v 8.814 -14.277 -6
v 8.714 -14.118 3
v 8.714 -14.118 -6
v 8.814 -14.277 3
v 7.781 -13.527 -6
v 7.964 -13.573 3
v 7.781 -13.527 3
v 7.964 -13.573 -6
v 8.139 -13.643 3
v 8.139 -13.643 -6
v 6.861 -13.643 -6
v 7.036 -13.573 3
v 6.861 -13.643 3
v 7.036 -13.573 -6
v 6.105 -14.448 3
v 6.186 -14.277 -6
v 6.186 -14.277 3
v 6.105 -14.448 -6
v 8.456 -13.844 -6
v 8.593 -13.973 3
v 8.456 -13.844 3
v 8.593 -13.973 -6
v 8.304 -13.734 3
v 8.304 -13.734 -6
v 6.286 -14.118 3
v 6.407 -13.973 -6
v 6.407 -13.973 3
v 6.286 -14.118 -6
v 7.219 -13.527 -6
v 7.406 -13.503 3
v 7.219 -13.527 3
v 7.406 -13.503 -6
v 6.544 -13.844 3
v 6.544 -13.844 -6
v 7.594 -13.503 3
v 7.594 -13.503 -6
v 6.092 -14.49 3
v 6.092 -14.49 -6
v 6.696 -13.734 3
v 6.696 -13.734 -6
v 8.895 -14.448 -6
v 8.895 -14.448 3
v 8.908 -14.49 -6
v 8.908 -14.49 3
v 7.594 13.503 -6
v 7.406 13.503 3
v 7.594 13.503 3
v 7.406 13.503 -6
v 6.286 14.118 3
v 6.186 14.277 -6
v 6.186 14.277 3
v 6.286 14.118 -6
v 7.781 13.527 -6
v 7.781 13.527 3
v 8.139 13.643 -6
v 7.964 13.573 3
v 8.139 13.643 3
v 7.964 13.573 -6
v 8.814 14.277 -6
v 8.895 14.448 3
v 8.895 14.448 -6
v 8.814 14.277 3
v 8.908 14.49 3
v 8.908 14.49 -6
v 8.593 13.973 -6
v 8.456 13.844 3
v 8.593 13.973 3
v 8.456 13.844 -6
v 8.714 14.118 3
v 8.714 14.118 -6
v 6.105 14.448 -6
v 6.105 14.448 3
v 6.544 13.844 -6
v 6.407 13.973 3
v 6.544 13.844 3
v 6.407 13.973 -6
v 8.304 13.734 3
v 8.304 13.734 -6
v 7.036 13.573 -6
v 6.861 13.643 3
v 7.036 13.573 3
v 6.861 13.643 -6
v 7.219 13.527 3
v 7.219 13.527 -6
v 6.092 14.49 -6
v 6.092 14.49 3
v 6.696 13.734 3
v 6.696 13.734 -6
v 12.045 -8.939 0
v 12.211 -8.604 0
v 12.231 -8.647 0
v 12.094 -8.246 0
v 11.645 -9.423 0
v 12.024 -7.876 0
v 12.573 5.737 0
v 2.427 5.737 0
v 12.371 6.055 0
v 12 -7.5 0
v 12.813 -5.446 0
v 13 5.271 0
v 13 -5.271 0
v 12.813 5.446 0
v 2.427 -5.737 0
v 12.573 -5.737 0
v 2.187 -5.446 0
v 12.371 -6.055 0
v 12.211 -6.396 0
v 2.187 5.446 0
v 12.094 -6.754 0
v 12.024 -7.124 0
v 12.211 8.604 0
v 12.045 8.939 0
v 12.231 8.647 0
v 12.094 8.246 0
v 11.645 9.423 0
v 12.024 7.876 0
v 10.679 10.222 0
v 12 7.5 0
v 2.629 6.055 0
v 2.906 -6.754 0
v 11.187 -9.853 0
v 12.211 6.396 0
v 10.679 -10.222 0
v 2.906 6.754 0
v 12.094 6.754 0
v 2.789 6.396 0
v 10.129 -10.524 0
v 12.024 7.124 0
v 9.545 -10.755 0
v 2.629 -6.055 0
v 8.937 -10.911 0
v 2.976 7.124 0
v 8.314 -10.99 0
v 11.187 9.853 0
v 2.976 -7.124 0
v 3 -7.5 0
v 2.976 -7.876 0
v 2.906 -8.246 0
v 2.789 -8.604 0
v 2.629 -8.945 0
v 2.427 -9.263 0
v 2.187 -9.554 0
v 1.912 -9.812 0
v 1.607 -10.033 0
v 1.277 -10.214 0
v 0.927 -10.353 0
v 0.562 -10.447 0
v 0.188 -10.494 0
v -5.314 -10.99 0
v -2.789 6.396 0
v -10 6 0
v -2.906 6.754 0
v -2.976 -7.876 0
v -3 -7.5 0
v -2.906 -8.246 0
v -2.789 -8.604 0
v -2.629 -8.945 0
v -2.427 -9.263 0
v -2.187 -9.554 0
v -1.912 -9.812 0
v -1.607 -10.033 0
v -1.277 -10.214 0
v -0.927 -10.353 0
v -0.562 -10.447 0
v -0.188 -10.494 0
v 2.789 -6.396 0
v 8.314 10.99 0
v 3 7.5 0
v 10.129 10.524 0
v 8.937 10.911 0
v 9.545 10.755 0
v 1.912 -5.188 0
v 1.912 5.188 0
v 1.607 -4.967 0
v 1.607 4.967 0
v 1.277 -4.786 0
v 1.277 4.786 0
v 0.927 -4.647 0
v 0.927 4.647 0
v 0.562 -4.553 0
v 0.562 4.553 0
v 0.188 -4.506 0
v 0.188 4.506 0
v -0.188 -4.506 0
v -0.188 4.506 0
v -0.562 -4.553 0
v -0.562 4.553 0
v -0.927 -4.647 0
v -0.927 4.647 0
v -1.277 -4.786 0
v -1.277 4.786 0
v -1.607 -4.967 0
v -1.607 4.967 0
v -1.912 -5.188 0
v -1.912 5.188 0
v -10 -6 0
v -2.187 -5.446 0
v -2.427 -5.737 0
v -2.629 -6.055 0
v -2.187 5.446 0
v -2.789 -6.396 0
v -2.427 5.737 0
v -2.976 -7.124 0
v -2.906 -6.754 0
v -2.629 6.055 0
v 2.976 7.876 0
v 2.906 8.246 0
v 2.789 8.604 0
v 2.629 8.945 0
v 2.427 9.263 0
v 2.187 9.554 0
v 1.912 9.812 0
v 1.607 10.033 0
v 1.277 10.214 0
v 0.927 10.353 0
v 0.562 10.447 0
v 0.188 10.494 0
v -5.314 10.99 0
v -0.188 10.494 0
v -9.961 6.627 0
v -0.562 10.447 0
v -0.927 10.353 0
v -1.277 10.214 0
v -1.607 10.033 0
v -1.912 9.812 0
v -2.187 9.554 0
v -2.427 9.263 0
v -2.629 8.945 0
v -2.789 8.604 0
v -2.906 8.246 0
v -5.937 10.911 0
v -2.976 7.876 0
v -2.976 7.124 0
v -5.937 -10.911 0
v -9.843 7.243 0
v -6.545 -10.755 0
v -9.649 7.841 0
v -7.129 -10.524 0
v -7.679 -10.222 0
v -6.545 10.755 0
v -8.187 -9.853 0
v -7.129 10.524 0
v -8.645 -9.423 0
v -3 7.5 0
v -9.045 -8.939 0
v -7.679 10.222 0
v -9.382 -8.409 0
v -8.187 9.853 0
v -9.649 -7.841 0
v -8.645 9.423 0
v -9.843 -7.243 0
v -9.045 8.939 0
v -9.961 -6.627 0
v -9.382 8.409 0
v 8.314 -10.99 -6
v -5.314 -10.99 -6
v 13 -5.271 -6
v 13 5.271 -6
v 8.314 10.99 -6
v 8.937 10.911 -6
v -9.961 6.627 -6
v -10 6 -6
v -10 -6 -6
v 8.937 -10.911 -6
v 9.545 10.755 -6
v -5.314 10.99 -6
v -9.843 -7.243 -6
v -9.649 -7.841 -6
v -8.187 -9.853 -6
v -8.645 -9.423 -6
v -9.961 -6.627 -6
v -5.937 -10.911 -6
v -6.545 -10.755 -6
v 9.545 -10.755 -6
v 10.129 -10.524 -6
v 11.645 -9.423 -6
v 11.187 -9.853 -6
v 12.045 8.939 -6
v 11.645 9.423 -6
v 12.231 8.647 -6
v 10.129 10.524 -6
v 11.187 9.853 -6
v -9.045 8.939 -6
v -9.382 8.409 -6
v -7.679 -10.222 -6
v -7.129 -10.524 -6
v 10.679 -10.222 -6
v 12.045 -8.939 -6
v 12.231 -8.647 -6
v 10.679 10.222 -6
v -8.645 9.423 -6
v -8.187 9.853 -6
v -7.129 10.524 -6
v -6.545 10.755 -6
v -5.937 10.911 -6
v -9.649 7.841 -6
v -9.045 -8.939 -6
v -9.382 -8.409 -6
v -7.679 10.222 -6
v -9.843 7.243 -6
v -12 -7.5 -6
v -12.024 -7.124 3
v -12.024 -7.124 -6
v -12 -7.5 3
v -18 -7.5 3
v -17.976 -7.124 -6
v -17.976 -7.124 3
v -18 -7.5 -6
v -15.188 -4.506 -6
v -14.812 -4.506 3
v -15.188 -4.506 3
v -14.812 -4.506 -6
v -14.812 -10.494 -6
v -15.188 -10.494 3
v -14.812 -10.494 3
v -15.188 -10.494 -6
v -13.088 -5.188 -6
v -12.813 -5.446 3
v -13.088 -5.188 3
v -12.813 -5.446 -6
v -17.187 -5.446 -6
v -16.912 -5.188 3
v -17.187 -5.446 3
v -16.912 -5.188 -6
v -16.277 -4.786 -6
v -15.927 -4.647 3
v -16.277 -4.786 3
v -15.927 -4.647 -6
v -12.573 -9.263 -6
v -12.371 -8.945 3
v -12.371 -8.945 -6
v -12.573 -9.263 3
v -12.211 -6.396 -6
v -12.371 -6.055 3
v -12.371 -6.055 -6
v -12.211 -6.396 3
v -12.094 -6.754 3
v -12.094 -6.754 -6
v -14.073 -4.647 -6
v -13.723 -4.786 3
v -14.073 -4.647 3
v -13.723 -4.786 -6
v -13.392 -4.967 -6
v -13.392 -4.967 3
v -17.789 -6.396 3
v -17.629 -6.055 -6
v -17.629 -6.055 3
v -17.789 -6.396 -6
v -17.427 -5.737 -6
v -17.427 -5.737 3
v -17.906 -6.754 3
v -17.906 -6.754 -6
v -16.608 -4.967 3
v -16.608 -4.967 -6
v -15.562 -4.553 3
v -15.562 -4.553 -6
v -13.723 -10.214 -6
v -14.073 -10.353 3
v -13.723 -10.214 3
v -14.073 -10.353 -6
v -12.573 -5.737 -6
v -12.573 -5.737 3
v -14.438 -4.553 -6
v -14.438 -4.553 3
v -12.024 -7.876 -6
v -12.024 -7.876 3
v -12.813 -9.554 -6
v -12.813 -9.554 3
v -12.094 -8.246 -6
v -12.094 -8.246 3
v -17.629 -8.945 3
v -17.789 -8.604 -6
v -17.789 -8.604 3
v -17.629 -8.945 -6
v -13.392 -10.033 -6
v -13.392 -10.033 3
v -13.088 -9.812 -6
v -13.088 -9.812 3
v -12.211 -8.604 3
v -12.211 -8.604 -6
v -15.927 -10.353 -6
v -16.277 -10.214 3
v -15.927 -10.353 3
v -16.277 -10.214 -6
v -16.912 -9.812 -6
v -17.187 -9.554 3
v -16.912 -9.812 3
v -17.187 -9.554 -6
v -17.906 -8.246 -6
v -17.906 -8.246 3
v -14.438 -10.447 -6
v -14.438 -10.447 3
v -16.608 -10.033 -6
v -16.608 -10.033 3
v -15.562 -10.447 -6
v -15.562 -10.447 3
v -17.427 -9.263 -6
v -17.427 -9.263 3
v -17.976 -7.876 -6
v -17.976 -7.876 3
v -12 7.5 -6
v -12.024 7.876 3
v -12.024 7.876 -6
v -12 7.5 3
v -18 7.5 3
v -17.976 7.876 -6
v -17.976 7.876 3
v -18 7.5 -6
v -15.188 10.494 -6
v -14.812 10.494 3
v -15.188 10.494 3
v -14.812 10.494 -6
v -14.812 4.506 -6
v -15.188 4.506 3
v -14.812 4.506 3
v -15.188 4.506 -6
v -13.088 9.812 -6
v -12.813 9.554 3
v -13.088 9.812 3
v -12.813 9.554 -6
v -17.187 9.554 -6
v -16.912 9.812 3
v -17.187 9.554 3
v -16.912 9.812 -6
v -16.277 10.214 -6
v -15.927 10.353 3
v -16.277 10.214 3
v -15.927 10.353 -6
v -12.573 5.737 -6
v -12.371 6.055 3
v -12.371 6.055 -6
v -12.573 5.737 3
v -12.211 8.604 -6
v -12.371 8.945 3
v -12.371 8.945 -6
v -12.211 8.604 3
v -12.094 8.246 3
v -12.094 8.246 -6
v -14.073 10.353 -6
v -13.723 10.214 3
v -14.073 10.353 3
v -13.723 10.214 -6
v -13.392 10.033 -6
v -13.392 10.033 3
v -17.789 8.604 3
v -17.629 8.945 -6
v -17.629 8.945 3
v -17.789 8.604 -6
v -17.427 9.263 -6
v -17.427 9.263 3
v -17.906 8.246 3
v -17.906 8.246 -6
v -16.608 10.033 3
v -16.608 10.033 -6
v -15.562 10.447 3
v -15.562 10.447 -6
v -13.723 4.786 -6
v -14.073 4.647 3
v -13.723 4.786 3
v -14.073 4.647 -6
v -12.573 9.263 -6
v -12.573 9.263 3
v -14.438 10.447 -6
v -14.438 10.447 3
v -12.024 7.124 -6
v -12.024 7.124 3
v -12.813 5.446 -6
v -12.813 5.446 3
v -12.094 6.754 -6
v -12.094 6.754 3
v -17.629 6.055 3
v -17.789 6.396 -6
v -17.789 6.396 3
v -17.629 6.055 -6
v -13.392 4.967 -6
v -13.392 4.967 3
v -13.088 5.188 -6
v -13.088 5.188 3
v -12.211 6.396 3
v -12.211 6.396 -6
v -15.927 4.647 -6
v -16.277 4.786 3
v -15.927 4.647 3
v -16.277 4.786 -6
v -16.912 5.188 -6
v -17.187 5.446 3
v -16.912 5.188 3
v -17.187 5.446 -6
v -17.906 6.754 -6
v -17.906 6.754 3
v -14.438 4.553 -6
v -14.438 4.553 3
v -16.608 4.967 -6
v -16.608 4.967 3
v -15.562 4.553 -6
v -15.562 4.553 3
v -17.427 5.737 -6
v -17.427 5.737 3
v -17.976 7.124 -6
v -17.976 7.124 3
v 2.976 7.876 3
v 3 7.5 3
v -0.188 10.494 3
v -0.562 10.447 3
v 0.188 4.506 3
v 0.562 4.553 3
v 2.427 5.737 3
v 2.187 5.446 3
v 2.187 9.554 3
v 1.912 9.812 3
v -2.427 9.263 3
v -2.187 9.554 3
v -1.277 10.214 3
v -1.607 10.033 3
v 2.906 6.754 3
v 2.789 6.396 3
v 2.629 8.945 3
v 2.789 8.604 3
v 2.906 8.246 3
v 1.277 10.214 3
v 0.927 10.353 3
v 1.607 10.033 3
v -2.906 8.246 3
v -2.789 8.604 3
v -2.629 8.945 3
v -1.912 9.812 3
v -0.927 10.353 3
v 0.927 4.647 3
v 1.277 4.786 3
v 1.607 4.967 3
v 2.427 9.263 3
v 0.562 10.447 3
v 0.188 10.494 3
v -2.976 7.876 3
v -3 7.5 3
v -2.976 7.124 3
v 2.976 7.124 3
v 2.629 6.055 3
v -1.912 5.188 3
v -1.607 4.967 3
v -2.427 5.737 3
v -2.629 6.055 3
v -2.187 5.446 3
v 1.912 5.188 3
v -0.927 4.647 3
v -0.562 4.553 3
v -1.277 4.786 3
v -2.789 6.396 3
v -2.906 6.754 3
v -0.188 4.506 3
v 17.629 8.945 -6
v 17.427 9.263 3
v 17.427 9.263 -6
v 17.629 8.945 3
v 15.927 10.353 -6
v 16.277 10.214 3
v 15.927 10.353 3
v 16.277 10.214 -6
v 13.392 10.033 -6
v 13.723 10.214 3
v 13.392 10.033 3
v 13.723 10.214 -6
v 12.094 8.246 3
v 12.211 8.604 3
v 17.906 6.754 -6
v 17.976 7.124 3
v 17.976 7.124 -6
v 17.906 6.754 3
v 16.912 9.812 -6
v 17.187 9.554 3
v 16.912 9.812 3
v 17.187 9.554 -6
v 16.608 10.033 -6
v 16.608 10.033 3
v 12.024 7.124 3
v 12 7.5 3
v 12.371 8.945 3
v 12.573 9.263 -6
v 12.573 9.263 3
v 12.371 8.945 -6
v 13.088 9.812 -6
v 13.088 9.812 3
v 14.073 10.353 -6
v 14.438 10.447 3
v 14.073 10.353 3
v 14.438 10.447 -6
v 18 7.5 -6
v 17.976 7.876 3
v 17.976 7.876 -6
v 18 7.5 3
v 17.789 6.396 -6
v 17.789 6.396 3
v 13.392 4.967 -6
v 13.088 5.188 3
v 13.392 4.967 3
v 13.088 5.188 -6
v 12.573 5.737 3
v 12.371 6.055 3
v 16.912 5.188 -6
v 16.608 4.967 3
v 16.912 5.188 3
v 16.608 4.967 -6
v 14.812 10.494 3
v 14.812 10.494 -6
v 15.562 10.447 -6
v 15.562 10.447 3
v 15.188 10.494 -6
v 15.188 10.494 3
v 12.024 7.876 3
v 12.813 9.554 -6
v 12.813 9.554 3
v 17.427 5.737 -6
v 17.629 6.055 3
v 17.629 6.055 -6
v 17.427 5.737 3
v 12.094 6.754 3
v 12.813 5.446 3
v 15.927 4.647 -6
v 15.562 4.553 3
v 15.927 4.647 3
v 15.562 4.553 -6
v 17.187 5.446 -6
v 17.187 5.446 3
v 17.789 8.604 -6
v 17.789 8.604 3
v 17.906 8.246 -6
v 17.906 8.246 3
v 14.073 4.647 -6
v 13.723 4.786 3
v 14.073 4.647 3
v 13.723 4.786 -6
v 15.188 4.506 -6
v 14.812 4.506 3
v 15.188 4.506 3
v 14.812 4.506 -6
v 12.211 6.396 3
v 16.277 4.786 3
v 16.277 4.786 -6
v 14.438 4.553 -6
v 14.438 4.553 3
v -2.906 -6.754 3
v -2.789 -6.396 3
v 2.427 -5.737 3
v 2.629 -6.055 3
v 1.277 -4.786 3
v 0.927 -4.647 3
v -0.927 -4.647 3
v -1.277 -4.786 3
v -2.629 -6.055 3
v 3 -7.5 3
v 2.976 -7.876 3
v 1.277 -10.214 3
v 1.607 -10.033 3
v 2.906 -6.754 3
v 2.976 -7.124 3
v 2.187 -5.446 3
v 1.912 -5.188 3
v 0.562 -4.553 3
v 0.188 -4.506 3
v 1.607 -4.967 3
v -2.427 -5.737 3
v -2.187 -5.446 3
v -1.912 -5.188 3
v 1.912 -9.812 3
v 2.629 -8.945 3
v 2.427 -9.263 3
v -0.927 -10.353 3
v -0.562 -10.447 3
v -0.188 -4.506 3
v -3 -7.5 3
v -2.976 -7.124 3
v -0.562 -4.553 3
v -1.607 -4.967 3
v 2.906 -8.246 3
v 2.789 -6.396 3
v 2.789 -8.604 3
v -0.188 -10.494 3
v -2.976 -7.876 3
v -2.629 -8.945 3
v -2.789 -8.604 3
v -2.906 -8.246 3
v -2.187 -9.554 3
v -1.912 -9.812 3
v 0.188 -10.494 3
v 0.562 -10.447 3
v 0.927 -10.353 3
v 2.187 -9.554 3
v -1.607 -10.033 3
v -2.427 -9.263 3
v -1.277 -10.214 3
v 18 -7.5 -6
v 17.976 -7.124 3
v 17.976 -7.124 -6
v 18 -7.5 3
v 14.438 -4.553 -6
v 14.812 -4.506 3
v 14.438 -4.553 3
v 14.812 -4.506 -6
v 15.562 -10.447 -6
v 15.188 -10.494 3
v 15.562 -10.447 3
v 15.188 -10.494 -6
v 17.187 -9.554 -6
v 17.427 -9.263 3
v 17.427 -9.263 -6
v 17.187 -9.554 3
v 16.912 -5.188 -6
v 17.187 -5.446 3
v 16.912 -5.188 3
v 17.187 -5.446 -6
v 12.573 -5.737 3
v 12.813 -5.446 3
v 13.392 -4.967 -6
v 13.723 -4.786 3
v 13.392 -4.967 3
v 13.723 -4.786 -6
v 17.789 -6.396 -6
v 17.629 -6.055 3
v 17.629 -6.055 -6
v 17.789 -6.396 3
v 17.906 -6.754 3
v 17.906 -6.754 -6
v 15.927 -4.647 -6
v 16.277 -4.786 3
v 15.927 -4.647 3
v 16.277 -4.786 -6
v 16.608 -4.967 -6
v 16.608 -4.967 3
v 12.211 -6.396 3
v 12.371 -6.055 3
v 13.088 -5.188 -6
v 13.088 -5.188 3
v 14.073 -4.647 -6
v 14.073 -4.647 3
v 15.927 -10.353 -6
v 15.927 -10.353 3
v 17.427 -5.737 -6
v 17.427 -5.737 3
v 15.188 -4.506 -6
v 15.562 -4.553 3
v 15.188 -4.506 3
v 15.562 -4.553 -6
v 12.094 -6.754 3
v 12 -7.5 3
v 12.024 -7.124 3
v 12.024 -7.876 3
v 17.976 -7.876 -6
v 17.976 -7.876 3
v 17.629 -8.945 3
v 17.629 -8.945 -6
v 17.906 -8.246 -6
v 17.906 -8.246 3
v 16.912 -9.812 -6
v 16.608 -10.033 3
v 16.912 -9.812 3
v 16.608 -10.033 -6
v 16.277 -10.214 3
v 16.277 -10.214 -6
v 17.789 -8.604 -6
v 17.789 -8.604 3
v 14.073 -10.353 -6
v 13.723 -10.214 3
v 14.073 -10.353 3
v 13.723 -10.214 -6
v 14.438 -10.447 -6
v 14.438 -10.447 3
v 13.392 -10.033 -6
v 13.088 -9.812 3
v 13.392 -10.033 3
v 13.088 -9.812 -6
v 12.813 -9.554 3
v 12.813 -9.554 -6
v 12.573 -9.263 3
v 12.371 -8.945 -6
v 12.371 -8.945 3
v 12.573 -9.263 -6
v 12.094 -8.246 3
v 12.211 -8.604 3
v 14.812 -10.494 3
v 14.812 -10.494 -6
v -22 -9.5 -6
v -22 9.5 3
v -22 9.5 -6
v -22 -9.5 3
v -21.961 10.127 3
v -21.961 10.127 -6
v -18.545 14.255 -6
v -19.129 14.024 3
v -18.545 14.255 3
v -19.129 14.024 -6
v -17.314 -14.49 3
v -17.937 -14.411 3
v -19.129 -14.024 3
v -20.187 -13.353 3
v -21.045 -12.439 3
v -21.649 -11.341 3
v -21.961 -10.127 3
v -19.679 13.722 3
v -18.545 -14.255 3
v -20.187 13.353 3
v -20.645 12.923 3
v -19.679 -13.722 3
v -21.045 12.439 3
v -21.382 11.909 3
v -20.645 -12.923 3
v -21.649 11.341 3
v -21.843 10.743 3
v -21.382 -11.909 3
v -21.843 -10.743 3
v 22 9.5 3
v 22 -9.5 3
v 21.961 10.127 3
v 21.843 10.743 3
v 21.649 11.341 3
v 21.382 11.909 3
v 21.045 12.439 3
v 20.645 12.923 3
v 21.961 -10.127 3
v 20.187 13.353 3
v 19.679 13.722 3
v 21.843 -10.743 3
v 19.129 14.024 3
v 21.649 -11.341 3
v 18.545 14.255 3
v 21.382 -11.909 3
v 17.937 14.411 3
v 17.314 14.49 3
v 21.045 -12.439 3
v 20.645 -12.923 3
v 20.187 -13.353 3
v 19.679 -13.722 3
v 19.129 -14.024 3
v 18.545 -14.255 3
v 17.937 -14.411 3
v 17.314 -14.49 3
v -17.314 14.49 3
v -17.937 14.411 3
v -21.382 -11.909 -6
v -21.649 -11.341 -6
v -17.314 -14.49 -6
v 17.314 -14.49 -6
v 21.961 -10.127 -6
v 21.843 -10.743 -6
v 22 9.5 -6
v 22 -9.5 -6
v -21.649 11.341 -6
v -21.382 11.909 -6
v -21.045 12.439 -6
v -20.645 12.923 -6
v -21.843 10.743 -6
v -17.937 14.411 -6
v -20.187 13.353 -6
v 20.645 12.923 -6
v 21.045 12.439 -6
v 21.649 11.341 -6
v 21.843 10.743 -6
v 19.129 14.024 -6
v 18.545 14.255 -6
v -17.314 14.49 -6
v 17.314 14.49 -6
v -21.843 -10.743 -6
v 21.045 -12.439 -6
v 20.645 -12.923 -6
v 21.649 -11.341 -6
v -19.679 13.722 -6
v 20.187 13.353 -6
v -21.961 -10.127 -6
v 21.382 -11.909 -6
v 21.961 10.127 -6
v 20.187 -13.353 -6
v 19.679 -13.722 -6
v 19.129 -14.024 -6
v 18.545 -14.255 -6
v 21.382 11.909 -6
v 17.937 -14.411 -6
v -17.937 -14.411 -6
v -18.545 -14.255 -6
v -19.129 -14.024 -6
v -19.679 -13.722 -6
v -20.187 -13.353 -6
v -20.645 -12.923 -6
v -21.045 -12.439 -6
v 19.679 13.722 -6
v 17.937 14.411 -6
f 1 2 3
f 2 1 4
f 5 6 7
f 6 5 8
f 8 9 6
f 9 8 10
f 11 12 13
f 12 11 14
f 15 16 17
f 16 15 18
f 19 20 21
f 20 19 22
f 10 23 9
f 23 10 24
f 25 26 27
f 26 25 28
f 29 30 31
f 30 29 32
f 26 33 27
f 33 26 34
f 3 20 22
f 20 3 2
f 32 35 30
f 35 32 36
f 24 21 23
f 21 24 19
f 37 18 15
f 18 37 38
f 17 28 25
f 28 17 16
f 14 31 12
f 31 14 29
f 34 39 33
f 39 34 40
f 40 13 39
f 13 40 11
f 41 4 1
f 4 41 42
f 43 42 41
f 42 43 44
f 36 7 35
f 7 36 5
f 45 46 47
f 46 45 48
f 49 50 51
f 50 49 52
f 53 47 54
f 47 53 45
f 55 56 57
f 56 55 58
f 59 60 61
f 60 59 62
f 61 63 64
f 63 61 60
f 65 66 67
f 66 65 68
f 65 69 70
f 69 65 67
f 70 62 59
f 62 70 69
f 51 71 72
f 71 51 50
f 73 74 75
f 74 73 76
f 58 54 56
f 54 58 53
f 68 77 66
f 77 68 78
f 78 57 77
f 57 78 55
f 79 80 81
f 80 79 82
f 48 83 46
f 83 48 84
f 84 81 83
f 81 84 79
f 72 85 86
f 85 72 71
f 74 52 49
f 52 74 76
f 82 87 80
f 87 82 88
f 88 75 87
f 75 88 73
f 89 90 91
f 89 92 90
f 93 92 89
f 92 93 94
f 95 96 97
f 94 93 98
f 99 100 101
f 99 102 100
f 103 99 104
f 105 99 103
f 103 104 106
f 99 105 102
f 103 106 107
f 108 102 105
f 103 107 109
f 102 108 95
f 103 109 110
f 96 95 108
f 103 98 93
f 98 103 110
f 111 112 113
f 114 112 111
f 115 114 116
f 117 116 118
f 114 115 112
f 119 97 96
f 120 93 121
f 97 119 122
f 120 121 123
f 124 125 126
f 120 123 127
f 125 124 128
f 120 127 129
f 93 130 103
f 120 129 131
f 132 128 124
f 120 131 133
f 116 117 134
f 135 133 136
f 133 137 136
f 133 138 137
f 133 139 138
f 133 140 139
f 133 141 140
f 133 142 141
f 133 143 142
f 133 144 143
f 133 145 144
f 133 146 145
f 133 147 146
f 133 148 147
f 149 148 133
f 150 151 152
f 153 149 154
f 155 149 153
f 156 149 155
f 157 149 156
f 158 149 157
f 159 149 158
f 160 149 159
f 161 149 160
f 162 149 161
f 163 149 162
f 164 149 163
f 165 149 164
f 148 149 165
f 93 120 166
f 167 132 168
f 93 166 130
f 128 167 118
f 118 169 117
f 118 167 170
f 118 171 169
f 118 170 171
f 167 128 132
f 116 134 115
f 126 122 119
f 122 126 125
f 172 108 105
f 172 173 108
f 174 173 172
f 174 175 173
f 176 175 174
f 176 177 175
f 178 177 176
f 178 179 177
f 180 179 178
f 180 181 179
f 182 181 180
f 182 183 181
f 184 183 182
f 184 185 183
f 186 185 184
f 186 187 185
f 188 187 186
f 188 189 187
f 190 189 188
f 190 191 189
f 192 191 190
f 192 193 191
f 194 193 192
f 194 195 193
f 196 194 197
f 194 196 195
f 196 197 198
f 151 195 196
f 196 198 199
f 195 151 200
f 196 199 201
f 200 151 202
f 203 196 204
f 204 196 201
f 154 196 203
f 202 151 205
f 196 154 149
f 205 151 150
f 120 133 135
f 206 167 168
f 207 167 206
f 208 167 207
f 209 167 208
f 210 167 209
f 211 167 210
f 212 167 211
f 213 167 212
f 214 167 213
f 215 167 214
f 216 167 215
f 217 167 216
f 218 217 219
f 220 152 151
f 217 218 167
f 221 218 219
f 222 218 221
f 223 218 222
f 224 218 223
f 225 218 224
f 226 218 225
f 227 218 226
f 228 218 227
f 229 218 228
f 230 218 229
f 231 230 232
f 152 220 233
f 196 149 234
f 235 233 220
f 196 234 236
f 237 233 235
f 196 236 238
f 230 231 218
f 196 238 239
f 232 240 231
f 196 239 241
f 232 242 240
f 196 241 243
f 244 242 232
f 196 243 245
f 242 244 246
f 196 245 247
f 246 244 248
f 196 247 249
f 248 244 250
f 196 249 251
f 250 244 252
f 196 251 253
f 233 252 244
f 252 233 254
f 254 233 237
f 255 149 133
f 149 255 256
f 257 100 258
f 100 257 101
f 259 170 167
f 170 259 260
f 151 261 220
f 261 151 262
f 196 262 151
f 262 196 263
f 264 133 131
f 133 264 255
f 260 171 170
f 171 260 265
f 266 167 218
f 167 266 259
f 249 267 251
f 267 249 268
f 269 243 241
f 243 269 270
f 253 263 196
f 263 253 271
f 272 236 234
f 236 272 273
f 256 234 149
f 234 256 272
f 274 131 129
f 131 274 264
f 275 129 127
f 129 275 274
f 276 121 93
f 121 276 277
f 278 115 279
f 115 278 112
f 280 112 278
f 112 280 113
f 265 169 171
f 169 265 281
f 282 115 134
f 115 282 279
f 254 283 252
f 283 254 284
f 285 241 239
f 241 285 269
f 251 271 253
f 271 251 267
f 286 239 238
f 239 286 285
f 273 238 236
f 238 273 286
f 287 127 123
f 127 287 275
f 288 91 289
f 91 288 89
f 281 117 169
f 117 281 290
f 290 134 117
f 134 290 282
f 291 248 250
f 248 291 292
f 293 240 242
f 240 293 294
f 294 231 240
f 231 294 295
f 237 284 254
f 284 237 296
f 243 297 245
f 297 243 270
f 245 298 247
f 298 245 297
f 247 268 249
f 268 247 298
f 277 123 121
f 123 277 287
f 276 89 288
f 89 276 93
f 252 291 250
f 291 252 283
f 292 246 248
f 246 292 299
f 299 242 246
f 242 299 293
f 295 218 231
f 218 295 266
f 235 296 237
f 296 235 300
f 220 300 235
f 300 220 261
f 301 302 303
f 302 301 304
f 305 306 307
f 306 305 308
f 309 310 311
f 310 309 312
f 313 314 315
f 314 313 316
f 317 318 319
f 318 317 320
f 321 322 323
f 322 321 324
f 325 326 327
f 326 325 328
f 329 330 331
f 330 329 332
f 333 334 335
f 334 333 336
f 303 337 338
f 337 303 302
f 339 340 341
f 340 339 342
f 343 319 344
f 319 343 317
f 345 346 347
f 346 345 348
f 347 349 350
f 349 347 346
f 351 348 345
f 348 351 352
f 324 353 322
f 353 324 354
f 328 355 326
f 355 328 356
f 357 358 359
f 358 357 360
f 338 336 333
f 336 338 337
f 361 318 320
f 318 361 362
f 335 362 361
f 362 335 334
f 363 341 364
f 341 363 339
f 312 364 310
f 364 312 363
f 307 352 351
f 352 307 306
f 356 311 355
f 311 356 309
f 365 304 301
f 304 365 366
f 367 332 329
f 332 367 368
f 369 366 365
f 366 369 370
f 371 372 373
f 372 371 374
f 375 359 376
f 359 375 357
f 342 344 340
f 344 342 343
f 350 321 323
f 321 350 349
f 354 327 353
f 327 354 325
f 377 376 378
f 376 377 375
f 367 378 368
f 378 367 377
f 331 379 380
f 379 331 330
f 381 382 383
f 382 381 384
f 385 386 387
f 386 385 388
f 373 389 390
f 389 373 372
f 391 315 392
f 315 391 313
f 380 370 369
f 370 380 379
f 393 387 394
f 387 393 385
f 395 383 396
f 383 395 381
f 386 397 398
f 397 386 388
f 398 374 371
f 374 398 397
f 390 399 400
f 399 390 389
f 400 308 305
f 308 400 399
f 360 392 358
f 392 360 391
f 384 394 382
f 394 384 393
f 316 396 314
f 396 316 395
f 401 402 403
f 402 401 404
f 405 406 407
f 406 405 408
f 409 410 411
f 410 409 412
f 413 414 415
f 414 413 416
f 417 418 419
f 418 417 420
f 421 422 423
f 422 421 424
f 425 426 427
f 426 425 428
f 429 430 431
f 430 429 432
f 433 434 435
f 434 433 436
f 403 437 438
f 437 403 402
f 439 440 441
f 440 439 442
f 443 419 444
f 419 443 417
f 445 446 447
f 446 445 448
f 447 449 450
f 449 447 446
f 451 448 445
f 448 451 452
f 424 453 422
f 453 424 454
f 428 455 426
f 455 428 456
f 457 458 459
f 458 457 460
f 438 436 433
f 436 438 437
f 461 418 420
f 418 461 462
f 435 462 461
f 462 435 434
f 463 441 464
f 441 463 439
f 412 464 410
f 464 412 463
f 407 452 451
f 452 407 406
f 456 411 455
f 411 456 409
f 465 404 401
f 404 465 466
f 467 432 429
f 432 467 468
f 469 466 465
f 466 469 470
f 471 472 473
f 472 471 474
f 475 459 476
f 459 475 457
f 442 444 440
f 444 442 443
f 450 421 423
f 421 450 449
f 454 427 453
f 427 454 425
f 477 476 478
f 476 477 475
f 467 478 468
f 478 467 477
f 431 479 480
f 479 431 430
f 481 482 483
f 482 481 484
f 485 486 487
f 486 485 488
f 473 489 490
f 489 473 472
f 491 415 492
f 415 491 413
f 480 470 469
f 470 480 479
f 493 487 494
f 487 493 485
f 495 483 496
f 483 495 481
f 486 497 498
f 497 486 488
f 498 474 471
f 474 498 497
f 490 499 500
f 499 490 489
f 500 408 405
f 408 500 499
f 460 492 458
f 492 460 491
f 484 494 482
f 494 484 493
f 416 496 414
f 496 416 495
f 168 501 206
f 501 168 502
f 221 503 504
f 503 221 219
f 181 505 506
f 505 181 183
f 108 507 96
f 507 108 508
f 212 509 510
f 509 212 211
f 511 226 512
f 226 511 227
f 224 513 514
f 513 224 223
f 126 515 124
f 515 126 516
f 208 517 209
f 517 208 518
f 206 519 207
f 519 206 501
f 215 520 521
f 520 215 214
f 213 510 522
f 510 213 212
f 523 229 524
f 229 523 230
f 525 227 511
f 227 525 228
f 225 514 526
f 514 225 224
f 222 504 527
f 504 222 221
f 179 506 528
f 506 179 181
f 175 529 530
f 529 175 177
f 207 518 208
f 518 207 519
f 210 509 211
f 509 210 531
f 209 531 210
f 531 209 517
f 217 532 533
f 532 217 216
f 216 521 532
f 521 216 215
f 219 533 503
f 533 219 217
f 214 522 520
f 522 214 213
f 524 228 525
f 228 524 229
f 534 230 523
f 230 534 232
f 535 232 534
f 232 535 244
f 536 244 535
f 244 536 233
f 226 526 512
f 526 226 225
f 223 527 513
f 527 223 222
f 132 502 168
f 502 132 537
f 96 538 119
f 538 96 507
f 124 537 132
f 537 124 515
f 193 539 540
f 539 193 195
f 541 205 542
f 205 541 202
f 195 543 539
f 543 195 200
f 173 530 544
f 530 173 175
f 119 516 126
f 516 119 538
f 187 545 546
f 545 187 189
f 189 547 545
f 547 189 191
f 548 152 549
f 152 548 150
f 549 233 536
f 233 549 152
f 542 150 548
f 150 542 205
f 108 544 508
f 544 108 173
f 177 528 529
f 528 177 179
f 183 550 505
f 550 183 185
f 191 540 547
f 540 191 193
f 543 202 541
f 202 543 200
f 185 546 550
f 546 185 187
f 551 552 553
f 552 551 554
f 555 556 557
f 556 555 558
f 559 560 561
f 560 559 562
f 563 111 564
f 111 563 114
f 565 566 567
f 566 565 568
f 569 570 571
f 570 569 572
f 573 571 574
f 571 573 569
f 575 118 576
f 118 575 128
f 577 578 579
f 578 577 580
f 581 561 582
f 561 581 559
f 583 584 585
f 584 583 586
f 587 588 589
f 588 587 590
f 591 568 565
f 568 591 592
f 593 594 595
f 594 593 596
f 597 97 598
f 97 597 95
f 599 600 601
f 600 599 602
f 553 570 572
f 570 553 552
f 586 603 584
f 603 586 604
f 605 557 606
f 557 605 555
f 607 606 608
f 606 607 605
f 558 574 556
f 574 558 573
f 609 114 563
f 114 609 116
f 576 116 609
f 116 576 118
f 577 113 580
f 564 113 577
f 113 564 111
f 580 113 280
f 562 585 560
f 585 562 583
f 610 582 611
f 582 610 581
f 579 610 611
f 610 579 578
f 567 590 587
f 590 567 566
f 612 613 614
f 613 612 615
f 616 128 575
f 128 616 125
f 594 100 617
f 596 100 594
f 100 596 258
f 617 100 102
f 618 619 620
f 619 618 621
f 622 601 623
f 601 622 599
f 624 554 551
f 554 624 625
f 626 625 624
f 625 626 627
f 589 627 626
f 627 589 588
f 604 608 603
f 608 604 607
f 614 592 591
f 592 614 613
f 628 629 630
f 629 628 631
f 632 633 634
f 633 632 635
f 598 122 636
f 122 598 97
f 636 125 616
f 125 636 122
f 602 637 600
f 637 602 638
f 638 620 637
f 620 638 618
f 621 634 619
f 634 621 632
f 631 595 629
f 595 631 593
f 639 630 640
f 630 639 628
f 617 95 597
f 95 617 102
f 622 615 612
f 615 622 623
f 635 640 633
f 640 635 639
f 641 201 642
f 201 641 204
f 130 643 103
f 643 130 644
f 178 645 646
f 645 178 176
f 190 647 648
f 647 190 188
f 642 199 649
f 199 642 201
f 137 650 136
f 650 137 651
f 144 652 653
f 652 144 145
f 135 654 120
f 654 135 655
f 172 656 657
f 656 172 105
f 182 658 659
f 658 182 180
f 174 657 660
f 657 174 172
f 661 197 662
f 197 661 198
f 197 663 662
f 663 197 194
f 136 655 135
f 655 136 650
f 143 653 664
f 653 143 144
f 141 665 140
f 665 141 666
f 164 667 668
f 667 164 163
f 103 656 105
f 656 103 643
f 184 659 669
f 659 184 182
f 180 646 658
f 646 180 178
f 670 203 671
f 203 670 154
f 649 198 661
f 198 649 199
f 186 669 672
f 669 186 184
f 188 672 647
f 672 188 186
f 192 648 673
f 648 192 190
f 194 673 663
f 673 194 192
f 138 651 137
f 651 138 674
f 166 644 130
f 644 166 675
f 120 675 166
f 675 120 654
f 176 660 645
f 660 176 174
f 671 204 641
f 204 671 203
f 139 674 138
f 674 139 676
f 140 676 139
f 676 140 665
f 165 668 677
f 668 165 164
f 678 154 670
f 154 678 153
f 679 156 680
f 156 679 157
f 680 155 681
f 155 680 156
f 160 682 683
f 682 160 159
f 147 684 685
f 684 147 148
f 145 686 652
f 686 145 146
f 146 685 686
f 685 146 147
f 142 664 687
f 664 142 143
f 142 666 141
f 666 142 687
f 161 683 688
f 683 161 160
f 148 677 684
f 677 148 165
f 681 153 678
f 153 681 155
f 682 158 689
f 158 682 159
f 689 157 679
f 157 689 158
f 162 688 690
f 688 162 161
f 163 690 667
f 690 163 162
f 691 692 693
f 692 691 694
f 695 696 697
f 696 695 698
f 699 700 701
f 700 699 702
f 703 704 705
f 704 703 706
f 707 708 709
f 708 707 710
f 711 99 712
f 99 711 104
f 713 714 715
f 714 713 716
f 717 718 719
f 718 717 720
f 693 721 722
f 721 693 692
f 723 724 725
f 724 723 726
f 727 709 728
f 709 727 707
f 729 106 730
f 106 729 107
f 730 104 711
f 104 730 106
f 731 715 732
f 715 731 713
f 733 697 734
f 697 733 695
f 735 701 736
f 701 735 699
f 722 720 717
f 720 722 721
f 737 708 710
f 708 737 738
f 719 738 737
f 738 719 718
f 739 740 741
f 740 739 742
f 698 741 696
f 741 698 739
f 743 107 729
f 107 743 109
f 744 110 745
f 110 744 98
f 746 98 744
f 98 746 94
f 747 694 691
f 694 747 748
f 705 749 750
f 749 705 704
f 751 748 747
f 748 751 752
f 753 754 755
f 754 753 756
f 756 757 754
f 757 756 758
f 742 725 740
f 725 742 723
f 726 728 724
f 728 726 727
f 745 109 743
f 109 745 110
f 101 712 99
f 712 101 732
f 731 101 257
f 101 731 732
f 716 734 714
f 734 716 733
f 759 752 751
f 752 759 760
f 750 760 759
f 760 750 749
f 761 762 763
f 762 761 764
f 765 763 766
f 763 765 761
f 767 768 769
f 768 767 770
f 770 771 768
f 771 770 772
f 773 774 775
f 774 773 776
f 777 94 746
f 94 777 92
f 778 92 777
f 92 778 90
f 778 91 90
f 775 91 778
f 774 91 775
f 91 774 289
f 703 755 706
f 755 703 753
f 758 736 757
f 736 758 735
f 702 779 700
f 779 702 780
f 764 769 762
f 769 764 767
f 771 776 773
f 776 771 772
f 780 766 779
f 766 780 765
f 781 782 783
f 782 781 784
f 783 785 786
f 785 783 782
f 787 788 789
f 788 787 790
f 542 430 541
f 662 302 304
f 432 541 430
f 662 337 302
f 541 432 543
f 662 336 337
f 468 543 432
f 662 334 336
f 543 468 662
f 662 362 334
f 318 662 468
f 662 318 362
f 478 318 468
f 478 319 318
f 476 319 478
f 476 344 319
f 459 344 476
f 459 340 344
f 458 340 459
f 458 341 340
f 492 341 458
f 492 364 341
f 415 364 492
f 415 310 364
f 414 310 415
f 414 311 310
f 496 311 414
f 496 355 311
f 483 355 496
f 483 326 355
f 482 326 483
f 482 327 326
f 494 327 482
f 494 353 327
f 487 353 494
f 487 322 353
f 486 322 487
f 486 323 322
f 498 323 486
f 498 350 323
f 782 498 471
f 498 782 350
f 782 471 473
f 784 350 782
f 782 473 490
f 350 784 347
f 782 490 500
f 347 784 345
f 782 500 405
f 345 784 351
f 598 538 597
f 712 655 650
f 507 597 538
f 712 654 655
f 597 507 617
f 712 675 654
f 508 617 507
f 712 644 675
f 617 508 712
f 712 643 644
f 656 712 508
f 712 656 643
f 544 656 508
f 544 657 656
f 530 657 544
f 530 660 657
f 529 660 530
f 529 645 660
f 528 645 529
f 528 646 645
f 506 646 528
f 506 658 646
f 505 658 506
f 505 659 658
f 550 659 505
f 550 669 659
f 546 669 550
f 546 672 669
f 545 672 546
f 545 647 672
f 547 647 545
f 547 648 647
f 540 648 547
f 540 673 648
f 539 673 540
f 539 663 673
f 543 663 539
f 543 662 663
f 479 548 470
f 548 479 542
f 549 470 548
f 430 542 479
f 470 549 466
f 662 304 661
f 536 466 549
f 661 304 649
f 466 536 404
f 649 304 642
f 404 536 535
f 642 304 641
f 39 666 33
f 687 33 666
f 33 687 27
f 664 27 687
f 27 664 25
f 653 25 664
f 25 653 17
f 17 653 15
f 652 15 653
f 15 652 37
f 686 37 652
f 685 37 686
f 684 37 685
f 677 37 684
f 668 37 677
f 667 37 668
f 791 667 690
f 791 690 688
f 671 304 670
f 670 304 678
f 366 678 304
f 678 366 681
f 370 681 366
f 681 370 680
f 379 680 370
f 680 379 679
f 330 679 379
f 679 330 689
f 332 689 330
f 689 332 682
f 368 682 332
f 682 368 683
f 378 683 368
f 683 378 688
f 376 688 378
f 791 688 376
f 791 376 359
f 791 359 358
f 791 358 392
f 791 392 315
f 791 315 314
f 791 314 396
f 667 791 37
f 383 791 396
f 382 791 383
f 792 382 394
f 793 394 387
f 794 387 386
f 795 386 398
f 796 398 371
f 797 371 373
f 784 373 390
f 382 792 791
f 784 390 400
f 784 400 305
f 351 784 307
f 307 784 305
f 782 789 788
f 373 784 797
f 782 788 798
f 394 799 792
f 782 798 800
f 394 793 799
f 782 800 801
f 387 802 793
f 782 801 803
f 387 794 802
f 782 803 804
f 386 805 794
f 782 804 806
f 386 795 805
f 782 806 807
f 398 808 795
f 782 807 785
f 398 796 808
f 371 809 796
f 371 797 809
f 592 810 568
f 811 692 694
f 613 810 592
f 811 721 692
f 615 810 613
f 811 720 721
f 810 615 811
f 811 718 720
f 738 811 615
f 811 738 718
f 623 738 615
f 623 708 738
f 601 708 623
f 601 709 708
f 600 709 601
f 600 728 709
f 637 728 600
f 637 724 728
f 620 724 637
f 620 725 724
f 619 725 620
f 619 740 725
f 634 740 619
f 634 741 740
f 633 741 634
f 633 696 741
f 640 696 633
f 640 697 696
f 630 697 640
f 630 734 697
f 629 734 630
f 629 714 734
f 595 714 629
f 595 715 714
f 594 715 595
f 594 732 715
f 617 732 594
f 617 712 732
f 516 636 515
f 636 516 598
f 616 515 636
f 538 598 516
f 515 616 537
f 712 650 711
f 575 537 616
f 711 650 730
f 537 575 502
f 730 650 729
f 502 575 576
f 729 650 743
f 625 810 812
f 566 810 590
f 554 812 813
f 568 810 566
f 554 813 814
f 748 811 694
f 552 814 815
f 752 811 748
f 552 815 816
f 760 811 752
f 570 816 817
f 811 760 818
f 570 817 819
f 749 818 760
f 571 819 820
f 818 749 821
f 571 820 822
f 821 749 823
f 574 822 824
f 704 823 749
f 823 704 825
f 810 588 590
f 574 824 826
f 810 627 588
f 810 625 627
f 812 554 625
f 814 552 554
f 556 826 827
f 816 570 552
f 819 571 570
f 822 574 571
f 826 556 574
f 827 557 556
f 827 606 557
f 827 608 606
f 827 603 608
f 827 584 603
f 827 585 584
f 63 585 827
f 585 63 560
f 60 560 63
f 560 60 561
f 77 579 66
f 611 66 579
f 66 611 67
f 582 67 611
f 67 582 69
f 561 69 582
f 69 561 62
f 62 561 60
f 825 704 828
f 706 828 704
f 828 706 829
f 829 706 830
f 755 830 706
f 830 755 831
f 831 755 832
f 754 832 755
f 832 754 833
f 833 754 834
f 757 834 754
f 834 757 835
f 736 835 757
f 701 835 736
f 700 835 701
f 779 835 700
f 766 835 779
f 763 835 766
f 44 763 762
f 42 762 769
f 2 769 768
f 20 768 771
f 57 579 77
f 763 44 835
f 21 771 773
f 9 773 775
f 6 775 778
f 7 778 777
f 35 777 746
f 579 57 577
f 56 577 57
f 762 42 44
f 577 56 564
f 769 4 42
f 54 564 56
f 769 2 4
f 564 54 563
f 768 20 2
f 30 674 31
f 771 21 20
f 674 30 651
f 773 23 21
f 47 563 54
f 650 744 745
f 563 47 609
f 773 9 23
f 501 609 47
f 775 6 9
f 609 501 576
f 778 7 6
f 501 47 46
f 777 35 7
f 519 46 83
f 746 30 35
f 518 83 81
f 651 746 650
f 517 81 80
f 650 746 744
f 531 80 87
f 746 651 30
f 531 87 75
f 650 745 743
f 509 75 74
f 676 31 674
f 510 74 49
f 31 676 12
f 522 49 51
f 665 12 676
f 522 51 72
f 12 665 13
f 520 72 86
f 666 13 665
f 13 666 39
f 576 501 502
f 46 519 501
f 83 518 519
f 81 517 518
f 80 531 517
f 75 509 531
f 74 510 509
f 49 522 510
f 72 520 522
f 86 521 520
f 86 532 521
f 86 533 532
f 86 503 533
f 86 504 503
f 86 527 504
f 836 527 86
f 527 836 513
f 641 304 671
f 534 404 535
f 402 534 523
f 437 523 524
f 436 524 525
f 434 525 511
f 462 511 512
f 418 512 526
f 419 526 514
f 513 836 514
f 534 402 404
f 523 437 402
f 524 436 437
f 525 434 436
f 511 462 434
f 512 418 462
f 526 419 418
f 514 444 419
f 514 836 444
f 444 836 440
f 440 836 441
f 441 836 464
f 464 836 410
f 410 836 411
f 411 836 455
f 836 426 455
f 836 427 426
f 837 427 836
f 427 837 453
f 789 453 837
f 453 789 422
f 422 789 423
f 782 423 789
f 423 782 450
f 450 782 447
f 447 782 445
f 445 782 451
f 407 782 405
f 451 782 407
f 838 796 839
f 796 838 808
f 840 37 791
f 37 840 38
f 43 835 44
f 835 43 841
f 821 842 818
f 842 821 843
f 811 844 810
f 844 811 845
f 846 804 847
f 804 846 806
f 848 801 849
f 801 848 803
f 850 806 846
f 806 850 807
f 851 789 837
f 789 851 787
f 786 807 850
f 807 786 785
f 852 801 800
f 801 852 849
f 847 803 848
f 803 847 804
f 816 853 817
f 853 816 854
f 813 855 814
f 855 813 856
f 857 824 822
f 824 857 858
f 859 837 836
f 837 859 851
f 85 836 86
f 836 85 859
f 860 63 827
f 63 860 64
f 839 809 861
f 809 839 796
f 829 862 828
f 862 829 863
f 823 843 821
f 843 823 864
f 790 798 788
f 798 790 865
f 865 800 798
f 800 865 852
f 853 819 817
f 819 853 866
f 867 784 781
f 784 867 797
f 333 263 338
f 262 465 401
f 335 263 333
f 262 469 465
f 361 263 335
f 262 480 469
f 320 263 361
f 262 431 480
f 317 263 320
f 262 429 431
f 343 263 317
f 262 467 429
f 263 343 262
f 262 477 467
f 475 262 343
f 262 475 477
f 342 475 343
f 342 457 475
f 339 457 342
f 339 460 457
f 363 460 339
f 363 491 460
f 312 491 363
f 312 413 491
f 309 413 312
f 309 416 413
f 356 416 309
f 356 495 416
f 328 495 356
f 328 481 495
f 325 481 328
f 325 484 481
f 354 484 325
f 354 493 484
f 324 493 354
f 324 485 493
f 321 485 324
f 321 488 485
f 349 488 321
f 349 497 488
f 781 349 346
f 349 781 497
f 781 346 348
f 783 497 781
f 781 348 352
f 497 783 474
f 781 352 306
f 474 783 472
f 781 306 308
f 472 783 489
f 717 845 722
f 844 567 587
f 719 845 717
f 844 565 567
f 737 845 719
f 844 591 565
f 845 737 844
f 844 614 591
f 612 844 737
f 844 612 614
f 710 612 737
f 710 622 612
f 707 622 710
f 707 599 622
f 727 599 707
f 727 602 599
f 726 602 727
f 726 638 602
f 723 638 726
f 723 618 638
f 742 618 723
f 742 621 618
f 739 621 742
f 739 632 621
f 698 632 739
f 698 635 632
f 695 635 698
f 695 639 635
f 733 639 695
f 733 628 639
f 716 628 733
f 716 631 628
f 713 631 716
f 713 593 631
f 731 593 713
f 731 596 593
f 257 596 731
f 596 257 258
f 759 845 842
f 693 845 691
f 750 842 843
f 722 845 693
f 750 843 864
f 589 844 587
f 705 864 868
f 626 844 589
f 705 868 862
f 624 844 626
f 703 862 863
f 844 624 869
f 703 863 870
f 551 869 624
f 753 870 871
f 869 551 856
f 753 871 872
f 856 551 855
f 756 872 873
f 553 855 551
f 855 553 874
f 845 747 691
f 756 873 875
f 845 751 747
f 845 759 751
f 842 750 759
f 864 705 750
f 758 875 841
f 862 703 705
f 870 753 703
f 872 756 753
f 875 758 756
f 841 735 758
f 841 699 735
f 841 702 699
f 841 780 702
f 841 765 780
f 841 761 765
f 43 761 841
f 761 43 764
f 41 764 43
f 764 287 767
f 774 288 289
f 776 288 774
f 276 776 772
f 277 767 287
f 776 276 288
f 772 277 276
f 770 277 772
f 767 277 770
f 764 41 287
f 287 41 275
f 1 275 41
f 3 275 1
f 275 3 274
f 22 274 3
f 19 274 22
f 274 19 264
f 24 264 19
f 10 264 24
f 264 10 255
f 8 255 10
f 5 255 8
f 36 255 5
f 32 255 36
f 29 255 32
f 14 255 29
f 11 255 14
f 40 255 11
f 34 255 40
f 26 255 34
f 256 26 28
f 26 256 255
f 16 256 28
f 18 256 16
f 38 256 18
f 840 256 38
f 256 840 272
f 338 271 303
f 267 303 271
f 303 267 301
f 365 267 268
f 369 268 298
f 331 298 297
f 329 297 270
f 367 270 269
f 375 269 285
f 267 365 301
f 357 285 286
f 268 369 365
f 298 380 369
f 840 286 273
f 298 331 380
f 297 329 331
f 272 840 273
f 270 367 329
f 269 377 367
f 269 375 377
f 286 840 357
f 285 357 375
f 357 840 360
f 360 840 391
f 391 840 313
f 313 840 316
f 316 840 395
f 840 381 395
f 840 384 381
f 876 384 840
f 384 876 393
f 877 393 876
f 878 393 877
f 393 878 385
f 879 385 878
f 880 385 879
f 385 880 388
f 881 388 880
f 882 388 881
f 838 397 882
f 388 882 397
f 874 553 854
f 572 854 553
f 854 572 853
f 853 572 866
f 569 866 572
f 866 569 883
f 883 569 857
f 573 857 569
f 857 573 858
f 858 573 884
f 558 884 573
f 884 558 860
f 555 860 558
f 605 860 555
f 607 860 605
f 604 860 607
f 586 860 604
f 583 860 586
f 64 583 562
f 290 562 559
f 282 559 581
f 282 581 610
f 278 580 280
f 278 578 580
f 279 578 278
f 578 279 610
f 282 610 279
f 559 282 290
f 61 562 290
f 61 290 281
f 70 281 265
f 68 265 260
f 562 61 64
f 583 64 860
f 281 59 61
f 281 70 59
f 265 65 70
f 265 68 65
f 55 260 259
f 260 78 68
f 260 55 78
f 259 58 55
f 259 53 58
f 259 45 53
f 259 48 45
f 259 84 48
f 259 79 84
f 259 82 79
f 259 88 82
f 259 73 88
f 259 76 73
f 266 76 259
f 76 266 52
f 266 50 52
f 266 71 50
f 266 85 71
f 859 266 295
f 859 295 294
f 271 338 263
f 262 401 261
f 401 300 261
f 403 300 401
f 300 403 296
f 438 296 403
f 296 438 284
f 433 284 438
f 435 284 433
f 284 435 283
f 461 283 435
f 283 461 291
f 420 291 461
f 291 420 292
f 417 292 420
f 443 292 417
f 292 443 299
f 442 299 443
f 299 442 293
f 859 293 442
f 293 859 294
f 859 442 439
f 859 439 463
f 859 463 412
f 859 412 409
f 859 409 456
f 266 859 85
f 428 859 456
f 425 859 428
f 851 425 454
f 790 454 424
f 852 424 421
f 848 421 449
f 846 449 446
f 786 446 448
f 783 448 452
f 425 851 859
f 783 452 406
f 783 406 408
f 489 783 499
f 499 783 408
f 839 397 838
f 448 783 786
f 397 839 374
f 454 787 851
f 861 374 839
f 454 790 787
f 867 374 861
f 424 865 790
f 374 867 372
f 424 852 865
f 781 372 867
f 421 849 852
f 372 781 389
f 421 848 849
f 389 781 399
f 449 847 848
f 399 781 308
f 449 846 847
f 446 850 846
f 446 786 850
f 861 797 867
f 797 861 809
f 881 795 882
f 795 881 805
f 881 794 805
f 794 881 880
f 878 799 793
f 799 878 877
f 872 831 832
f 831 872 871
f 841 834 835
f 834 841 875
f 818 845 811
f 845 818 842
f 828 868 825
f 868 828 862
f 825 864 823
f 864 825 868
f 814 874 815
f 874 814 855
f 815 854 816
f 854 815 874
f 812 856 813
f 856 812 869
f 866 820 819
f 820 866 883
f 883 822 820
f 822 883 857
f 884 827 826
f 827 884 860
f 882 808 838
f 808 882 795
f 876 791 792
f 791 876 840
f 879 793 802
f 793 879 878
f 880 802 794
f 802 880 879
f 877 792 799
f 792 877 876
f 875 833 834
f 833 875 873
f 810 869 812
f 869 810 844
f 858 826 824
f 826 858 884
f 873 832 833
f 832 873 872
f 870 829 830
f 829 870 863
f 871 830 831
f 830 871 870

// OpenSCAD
$fn = 50;


difference() {
	union() {
		translate(v = [0, 0, -6]) {
			hull() {
				translate(v = [-17.0000000000, 9.5000000000, 0]) {
					cylinder(h = 9, r = 5);
				}
				translate(v = [17.0000000000, 9.5000000000, 0]) {
					cylinder(h = 9, r = 5);
				}
				translate(v = [-17.0000000000, -9.5000000000, 0]) {
					cylinder(h = 9, r = 5);
				}
				translate(v = [17.0000000000, -9.5000000000, 0]) {
					cylinder(h = 9, r = 5);
				}
			}
		}
	}
	union() {
		translate(v = [7.5000000000, -15, -9]) {
			rotate(a = [0, 0, 0]) {
				difference() {
					union() {
						translate(v = [0, 0, -50.0000000000]) {
							cylinder(h = 100, r = 1.5000000000);
						}
						translate(v = [0, 0, -50.0000000000]) {
							cylinder(h = 100, r = 1.5000000000);
						}
						linear_extrude(height = 2.5000000000) {
							polygon(points = [[3.1735000000, 0.0000000000], [1.5867500000, 2.7483316189], [-1.5867500000, 2.7483316189], [-3.1735000000, 0.0000000000], [-1.5867500000, -2.7483316189], [1.5867500000, -2.7483316189]]);
						}
						translate(v = [0, 0, -50.0000000000]) {
							cylinder(h = 100, r = 1.5000000000);
						}
					}
					union();
				}
			}
		}
		translate(v = [7.5000000000, 15, -9]) {
			rotate(a = [0, 0, 0]) {
				difference() {
					union() {
						translate(v = [0, 0, -50.0000000000]) {
							cylinder(h = 100, r = 1.5000000000);
						}
						translate(v = [0, 0, -50.0000000000]) {
							cylinder(h = 100, r = 1.5000000000);
						}
						linear_extrude(height = 2.5000000000) {
							polygon(points = [[3.1735000000, 0.0000000000], [1.5867500000, 2.7483316189], [-1.5867500000, 2.7483316189], [-3.1735000000, 0.0000000000], [-1.5867500000, -2.7483316189], [1.5867500000, -2.7483316189]]);
						}
						translate(v = [0, 0, -50.0000000000]) {
							cylinder(h = 100, r = 1.5000000000);
						}
					}
					union();
				}
			}
		}
		translate(v = [0, 0, -3]) {
			rotate(a = [0, 0, 180]) {
				difference() {
					union() {
						translate(v = [-1.5000000000, 0, -6]) {
							#hull() {
								translate(v = [-6.5000000000, 6.0000000000, 0]) {
									cylinder(h = 9, r = 5);
								}
								translate(v = [6.5000000000, 6.0000000000, 0]) {
									cylinder(h = 9, r = 5);
								}
								translate(v = [-6.5000000000, -6.0000000000, 0]) {
									cylinder(h = 9, r = 5);
								}
								translate(v = [6.5000000000, -6.0000000000, 0]) {
									cylinder(h = 9, r = 5);
								}
							}
						}
					}
					union();
				}
			}
		}
		translate(v = [-15.0000000000, -7.5000000000, -50.0000000000]) {
			cylinder(h = 100, r = 3.0000000000);
		}
		translate(v = [-15.0000000000, 7.5000000000, -50.0000000000]) {
			cylinder(h = 100, r = 3.0000000000);
		}
		translate(v = [-15.0000000000, 7.5000000000, -50.0000000000]) {
			cylinder(h = 100, r = 3.0000000000);
		}
		translate(v = [0.0000000000, 7.5000000000, -50.0000000000]) {
			cylinder(h = 100, r = 3.0000000000);
		}
		translate(v = [15.0000000000, 7.5000000000, -50.0000000000]) {
			cylinder(h = 100, r = 3.0000000000);
		}
		translate(v = [-15.0000000000, -7.5000000000, -50.0000000000]) {
			cylinder(h = 100, r = 3.0000000000);
		}
		translate(v = [0.0000000000, -7.5000000000, -50.0000000000]) {
			cylinder(h = 100, r = 3.0000000000);
		}
		translate(v = [15.0000000000, -7.5000000000, -50.0000000000]) {
			cylinder(h = 100, r = 3.0000000000);
		}
	}
}
